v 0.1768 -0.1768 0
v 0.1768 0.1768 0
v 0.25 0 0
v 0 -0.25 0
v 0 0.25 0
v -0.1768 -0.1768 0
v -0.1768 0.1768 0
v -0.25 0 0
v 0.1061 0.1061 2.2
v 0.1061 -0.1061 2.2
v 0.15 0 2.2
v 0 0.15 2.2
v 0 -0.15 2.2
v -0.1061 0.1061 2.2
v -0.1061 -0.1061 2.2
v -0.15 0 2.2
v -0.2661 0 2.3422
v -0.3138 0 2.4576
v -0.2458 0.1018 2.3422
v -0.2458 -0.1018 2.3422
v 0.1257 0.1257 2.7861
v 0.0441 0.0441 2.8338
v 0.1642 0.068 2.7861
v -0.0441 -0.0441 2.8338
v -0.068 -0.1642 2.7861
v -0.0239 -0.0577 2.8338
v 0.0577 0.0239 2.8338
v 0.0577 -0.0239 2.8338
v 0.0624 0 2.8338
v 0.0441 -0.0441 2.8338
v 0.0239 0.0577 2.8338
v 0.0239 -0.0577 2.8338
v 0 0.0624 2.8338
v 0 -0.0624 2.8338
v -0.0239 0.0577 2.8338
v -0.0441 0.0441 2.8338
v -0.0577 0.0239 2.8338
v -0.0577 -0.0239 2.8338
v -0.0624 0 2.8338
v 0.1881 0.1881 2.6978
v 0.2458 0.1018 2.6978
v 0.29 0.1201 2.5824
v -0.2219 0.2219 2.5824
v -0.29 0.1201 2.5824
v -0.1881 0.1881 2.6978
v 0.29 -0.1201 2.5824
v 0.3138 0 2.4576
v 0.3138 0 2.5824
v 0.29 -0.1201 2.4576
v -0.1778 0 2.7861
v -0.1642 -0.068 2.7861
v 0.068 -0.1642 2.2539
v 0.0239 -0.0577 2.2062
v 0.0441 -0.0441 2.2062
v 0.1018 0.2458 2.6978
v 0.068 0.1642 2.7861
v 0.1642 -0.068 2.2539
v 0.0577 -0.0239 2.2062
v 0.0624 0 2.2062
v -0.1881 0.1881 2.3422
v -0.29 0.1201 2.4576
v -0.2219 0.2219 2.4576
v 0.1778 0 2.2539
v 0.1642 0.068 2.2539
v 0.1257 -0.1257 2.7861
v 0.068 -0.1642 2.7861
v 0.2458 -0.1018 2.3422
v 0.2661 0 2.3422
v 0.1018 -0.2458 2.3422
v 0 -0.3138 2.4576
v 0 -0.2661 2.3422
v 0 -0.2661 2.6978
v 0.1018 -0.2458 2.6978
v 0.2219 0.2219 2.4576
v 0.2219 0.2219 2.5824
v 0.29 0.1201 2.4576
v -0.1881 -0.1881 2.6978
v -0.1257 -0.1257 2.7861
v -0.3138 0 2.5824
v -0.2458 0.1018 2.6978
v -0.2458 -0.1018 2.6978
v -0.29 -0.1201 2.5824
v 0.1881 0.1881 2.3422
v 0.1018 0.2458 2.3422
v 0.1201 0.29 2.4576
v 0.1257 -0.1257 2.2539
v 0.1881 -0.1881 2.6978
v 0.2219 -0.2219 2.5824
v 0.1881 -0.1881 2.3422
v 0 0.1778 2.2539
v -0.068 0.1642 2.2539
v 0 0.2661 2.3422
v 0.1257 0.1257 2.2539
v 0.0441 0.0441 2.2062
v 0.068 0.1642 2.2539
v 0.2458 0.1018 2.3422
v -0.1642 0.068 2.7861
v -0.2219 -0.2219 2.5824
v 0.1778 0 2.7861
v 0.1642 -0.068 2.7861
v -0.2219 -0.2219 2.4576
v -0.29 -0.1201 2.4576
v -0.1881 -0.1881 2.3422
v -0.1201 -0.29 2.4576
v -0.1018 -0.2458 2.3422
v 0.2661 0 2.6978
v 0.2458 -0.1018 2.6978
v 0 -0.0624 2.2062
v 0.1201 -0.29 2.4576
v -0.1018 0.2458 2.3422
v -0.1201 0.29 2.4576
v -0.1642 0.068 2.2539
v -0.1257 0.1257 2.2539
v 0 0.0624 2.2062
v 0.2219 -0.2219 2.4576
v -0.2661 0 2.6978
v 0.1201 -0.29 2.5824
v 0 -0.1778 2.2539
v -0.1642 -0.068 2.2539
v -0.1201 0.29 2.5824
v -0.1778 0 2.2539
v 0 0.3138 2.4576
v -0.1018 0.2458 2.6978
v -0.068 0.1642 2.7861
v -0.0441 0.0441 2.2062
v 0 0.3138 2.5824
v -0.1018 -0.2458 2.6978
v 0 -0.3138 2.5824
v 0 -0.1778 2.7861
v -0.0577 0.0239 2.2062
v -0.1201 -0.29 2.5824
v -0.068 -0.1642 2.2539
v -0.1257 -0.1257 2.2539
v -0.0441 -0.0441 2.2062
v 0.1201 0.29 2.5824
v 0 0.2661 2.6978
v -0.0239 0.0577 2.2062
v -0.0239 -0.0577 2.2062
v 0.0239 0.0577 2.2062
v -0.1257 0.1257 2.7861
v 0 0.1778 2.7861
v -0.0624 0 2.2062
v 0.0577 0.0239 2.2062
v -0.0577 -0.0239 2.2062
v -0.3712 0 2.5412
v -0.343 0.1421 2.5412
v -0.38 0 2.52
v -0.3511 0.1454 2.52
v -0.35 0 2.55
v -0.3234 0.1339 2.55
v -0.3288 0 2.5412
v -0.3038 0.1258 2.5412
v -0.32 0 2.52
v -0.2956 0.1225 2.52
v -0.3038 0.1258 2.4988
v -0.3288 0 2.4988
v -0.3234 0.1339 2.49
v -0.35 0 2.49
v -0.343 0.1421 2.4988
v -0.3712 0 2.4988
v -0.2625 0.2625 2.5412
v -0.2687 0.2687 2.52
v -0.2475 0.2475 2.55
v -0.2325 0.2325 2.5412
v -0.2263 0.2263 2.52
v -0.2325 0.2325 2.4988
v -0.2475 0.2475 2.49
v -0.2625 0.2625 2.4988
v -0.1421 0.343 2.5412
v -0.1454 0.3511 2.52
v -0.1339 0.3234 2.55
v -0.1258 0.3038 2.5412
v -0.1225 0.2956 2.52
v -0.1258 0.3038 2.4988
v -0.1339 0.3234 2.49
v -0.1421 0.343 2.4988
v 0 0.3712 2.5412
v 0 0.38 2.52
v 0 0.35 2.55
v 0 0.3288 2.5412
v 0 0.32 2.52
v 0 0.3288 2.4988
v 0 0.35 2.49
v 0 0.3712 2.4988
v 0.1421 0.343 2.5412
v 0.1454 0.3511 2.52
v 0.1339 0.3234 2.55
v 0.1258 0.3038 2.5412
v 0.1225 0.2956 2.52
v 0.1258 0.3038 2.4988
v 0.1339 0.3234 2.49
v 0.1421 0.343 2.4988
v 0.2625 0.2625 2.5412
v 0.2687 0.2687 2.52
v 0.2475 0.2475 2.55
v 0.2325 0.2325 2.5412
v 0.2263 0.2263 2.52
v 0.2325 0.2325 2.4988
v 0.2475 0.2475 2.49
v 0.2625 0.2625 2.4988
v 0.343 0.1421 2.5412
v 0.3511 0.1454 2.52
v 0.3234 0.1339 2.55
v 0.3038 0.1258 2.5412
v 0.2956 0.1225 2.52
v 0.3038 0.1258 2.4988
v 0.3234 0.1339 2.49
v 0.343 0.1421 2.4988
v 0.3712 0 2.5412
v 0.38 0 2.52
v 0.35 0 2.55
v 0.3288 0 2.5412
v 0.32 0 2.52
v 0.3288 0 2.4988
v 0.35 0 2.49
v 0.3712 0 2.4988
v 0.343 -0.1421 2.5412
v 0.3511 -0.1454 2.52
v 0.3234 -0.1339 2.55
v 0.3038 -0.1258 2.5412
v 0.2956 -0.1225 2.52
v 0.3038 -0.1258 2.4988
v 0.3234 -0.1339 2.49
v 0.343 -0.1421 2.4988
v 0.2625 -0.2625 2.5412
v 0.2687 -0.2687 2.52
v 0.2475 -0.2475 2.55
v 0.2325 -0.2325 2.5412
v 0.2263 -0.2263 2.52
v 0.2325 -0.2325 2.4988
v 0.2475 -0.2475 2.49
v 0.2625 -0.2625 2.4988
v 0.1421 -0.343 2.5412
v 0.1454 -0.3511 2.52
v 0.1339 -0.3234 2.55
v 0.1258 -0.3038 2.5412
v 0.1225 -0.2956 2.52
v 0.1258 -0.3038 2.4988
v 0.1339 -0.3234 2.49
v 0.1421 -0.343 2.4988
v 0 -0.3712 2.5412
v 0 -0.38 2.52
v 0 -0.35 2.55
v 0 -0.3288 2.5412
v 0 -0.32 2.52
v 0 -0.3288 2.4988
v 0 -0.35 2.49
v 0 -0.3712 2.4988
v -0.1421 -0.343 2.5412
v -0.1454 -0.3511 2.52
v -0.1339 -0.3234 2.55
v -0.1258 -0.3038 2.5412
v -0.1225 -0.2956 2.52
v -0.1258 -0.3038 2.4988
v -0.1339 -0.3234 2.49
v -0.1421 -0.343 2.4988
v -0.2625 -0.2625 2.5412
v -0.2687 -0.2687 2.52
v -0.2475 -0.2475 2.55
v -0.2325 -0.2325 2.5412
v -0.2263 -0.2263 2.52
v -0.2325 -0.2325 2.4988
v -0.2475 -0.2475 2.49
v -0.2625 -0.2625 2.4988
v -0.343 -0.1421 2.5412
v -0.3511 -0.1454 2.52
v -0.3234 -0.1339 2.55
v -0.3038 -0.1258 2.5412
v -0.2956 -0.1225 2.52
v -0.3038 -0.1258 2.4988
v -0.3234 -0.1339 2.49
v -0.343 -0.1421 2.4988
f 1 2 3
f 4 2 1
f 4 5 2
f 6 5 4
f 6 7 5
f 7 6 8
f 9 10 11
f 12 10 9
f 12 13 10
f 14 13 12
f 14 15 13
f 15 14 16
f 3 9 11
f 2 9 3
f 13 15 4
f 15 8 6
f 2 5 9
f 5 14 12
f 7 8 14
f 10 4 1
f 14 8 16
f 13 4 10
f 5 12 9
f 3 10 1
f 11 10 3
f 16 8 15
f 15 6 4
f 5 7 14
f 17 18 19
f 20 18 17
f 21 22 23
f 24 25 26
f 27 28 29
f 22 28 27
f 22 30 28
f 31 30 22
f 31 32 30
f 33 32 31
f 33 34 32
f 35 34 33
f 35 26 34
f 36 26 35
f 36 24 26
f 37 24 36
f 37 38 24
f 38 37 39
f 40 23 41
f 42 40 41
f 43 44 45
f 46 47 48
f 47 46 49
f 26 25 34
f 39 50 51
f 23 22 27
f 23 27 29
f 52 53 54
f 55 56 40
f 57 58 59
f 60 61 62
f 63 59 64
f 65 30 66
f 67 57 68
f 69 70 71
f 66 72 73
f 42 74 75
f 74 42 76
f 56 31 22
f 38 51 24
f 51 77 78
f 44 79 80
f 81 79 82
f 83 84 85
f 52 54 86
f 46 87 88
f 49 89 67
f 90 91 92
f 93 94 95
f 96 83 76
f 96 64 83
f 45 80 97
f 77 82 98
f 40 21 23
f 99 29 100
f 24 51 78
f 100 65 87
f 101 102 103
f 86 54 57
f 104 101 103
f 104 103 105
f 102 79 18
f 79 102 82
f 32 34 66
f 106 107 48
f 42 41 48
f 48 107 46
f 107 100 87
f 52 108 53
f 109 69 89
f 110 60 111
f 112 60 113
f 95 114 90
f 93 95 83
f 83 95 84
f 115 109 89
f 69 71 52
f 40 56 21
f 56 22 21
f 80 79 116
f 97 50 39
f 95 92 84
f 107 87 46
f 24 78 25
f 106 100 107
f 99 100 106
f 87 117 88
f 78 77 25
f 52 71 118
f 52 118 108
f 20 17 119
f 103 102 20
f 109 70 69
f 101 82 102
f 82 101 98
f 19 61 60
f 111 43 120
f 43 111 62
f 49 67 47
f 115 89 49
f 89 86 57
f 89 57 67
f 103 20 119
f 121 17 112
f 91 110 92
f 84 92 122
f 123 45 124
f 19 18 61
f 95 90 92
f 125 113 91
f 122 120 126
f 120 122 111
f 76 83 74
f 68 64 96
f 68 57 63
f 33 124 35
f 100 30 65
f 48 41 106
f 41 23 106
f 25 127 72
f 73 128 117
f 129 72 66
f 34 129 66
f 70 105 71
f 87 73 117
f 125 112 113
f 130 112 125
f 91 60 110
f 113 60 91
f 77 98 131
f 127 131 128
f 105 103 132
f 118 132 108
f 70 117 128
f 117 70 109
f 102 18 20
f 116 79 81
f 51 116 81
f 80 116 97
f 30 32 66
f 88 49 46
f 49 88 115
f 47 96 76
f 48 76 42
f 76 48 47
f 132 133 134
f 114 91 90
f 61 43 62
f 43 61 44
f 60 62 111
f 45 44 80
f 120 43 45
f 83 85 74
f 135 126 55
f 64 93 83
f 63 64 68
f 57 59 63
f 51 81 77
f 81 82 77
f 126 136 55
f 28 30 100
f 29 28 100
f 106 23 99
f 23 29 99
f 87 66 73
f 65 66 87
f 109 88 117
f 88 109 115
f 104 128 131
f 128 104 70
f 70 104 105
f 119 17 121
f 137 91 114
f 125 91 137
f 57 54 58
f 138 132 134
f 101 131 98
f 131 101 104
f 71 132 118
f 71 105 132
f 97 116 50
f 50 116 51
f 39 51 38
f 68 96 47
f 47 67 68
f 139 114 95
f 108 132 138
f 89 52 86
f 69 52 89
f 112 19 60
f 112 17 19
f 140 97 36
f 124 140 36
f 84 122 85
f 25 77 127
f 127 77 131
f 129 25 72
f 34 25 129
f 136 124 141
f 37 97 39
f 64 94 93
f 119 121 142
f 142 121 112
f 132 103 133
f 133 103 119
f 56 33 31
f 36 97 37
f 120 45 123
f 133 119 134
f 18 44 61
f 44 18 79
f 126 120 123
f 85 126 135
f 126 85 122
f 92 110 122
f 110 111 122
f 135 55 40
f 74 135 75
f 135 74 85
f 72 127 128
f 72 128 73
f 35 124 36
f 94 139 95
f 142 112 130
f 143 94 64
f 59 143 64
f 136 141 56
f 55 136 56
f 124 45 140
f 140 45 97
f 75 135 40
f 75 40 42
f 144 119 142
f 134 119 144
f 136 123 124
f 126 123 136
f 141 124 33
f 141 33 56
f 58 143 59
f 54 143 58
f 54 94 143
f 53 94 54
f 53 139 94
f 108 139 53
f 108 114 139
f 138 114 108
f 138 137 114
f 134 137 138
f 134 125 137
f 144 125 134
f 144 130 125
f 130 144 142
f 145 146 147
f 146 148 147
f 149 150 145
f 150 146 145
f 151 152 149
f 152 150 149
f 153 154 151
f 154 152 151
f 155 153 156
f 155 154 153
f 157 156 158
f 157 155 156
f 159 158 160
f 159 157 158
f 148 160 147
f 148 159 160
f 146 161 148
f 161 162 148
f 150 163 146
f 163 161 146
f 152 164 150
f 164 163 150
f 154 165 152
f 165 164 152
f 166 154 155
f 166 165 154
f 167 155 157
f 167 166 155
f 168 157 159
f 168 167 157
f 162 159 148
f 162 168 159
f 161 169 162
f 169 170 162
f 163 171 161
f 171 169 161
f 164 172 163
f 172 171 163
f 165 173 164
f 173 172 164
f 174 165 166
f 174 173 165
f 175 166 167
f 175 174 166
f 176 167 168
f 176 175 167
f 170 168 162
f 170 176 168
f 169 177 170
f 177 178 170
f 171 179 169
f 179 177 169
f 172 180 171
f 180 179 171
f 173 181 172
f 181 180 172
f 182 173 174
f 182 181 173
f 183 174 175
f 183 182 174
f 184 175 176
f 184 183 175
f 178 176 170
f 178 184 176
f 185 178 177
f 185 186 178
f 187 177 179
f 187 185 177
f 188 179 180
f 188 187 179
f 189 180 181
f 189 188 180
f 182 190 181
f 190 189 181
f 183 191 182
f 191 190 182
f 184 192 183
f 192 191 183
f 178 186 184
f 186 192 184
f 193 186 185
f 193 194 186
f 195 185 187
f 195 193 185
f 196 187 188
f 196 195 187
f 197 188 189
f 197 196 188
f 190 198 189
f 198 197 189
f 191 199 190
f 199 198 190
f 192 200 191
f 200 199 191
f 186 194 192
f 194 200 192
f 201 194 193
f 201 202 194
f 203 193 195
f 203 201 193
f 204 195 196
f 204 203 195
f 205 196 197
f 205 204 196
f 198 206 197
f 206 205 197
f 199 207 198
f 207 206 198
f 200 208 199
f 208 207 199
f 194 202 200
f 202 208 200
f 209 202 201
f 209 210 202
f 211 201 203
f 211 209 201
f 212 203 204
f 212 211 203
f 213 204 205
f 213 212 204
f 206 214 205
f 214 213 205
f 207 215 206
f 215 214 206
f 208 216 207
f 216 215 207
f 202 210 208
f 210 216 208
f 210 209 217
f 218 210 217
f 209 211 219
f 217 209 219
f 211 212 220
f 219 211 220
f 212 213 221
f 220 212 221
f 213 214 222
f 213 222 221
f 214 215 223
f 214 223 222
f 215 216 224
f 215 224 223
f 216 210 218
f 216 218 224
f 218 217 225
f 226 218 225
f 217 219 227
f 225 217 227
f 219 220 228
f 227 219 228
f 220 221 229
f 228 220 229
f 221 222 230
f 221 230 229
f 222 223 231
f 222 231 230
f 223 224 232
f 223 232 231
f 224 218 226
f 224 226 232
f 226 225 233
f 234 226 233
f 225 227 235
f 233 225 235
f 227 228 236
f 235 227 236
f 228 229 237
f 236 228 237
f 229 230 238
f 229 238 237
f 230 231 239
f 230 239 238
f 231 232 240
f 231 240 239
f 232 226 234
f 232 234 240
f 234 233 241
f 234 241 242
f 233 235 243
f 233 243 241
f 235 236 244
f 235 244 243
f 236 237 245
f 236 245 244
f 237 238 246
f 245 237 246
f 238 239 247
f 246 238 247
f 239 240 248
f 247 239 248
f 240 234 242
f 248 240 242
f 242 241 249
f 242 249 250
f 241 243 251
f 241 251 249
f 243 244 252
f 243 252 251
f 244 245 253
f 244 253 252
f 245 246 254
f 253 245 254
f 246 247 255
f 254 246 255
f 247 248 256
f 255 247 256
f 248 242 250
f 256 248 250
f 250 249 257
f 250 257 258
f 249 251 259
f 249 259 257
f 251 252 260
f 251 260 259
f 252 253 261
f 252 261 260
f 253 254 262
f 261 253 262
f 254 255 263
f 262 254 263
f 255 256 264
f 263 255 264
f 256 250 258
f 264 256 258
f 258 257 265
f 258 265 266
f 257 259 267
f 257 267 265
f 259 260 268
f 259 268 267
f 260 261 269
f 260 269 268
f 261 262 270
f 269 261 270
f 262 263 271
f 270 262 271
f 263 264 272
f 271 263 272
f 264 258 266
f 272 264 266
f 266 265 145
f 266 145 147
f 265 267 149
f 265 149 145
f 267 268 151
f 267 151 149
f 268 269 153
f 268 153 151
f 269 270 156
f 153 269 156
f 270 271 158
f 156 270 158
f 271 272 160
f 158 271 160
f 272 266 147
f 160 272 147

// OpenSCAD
// beacon_lantern.scad

module beacon_lantern() {
    // Metal post
    cylinder(h=2.2, r1=0.25, r2=0.15, $fn=8);
    
    // Crystal housing
    translate([0, 0, 2.2 + 0.32])
    sphere(r=0.32, $fn=16);
    
    // Cage/frame
    translate([0, 0, 2.2 + 0.32])
    rotate_extrude($fn=16)
    translate([0.35, 0, 0])
    circle(r=0.03, $fn=8);
}

beacon_lantern();
